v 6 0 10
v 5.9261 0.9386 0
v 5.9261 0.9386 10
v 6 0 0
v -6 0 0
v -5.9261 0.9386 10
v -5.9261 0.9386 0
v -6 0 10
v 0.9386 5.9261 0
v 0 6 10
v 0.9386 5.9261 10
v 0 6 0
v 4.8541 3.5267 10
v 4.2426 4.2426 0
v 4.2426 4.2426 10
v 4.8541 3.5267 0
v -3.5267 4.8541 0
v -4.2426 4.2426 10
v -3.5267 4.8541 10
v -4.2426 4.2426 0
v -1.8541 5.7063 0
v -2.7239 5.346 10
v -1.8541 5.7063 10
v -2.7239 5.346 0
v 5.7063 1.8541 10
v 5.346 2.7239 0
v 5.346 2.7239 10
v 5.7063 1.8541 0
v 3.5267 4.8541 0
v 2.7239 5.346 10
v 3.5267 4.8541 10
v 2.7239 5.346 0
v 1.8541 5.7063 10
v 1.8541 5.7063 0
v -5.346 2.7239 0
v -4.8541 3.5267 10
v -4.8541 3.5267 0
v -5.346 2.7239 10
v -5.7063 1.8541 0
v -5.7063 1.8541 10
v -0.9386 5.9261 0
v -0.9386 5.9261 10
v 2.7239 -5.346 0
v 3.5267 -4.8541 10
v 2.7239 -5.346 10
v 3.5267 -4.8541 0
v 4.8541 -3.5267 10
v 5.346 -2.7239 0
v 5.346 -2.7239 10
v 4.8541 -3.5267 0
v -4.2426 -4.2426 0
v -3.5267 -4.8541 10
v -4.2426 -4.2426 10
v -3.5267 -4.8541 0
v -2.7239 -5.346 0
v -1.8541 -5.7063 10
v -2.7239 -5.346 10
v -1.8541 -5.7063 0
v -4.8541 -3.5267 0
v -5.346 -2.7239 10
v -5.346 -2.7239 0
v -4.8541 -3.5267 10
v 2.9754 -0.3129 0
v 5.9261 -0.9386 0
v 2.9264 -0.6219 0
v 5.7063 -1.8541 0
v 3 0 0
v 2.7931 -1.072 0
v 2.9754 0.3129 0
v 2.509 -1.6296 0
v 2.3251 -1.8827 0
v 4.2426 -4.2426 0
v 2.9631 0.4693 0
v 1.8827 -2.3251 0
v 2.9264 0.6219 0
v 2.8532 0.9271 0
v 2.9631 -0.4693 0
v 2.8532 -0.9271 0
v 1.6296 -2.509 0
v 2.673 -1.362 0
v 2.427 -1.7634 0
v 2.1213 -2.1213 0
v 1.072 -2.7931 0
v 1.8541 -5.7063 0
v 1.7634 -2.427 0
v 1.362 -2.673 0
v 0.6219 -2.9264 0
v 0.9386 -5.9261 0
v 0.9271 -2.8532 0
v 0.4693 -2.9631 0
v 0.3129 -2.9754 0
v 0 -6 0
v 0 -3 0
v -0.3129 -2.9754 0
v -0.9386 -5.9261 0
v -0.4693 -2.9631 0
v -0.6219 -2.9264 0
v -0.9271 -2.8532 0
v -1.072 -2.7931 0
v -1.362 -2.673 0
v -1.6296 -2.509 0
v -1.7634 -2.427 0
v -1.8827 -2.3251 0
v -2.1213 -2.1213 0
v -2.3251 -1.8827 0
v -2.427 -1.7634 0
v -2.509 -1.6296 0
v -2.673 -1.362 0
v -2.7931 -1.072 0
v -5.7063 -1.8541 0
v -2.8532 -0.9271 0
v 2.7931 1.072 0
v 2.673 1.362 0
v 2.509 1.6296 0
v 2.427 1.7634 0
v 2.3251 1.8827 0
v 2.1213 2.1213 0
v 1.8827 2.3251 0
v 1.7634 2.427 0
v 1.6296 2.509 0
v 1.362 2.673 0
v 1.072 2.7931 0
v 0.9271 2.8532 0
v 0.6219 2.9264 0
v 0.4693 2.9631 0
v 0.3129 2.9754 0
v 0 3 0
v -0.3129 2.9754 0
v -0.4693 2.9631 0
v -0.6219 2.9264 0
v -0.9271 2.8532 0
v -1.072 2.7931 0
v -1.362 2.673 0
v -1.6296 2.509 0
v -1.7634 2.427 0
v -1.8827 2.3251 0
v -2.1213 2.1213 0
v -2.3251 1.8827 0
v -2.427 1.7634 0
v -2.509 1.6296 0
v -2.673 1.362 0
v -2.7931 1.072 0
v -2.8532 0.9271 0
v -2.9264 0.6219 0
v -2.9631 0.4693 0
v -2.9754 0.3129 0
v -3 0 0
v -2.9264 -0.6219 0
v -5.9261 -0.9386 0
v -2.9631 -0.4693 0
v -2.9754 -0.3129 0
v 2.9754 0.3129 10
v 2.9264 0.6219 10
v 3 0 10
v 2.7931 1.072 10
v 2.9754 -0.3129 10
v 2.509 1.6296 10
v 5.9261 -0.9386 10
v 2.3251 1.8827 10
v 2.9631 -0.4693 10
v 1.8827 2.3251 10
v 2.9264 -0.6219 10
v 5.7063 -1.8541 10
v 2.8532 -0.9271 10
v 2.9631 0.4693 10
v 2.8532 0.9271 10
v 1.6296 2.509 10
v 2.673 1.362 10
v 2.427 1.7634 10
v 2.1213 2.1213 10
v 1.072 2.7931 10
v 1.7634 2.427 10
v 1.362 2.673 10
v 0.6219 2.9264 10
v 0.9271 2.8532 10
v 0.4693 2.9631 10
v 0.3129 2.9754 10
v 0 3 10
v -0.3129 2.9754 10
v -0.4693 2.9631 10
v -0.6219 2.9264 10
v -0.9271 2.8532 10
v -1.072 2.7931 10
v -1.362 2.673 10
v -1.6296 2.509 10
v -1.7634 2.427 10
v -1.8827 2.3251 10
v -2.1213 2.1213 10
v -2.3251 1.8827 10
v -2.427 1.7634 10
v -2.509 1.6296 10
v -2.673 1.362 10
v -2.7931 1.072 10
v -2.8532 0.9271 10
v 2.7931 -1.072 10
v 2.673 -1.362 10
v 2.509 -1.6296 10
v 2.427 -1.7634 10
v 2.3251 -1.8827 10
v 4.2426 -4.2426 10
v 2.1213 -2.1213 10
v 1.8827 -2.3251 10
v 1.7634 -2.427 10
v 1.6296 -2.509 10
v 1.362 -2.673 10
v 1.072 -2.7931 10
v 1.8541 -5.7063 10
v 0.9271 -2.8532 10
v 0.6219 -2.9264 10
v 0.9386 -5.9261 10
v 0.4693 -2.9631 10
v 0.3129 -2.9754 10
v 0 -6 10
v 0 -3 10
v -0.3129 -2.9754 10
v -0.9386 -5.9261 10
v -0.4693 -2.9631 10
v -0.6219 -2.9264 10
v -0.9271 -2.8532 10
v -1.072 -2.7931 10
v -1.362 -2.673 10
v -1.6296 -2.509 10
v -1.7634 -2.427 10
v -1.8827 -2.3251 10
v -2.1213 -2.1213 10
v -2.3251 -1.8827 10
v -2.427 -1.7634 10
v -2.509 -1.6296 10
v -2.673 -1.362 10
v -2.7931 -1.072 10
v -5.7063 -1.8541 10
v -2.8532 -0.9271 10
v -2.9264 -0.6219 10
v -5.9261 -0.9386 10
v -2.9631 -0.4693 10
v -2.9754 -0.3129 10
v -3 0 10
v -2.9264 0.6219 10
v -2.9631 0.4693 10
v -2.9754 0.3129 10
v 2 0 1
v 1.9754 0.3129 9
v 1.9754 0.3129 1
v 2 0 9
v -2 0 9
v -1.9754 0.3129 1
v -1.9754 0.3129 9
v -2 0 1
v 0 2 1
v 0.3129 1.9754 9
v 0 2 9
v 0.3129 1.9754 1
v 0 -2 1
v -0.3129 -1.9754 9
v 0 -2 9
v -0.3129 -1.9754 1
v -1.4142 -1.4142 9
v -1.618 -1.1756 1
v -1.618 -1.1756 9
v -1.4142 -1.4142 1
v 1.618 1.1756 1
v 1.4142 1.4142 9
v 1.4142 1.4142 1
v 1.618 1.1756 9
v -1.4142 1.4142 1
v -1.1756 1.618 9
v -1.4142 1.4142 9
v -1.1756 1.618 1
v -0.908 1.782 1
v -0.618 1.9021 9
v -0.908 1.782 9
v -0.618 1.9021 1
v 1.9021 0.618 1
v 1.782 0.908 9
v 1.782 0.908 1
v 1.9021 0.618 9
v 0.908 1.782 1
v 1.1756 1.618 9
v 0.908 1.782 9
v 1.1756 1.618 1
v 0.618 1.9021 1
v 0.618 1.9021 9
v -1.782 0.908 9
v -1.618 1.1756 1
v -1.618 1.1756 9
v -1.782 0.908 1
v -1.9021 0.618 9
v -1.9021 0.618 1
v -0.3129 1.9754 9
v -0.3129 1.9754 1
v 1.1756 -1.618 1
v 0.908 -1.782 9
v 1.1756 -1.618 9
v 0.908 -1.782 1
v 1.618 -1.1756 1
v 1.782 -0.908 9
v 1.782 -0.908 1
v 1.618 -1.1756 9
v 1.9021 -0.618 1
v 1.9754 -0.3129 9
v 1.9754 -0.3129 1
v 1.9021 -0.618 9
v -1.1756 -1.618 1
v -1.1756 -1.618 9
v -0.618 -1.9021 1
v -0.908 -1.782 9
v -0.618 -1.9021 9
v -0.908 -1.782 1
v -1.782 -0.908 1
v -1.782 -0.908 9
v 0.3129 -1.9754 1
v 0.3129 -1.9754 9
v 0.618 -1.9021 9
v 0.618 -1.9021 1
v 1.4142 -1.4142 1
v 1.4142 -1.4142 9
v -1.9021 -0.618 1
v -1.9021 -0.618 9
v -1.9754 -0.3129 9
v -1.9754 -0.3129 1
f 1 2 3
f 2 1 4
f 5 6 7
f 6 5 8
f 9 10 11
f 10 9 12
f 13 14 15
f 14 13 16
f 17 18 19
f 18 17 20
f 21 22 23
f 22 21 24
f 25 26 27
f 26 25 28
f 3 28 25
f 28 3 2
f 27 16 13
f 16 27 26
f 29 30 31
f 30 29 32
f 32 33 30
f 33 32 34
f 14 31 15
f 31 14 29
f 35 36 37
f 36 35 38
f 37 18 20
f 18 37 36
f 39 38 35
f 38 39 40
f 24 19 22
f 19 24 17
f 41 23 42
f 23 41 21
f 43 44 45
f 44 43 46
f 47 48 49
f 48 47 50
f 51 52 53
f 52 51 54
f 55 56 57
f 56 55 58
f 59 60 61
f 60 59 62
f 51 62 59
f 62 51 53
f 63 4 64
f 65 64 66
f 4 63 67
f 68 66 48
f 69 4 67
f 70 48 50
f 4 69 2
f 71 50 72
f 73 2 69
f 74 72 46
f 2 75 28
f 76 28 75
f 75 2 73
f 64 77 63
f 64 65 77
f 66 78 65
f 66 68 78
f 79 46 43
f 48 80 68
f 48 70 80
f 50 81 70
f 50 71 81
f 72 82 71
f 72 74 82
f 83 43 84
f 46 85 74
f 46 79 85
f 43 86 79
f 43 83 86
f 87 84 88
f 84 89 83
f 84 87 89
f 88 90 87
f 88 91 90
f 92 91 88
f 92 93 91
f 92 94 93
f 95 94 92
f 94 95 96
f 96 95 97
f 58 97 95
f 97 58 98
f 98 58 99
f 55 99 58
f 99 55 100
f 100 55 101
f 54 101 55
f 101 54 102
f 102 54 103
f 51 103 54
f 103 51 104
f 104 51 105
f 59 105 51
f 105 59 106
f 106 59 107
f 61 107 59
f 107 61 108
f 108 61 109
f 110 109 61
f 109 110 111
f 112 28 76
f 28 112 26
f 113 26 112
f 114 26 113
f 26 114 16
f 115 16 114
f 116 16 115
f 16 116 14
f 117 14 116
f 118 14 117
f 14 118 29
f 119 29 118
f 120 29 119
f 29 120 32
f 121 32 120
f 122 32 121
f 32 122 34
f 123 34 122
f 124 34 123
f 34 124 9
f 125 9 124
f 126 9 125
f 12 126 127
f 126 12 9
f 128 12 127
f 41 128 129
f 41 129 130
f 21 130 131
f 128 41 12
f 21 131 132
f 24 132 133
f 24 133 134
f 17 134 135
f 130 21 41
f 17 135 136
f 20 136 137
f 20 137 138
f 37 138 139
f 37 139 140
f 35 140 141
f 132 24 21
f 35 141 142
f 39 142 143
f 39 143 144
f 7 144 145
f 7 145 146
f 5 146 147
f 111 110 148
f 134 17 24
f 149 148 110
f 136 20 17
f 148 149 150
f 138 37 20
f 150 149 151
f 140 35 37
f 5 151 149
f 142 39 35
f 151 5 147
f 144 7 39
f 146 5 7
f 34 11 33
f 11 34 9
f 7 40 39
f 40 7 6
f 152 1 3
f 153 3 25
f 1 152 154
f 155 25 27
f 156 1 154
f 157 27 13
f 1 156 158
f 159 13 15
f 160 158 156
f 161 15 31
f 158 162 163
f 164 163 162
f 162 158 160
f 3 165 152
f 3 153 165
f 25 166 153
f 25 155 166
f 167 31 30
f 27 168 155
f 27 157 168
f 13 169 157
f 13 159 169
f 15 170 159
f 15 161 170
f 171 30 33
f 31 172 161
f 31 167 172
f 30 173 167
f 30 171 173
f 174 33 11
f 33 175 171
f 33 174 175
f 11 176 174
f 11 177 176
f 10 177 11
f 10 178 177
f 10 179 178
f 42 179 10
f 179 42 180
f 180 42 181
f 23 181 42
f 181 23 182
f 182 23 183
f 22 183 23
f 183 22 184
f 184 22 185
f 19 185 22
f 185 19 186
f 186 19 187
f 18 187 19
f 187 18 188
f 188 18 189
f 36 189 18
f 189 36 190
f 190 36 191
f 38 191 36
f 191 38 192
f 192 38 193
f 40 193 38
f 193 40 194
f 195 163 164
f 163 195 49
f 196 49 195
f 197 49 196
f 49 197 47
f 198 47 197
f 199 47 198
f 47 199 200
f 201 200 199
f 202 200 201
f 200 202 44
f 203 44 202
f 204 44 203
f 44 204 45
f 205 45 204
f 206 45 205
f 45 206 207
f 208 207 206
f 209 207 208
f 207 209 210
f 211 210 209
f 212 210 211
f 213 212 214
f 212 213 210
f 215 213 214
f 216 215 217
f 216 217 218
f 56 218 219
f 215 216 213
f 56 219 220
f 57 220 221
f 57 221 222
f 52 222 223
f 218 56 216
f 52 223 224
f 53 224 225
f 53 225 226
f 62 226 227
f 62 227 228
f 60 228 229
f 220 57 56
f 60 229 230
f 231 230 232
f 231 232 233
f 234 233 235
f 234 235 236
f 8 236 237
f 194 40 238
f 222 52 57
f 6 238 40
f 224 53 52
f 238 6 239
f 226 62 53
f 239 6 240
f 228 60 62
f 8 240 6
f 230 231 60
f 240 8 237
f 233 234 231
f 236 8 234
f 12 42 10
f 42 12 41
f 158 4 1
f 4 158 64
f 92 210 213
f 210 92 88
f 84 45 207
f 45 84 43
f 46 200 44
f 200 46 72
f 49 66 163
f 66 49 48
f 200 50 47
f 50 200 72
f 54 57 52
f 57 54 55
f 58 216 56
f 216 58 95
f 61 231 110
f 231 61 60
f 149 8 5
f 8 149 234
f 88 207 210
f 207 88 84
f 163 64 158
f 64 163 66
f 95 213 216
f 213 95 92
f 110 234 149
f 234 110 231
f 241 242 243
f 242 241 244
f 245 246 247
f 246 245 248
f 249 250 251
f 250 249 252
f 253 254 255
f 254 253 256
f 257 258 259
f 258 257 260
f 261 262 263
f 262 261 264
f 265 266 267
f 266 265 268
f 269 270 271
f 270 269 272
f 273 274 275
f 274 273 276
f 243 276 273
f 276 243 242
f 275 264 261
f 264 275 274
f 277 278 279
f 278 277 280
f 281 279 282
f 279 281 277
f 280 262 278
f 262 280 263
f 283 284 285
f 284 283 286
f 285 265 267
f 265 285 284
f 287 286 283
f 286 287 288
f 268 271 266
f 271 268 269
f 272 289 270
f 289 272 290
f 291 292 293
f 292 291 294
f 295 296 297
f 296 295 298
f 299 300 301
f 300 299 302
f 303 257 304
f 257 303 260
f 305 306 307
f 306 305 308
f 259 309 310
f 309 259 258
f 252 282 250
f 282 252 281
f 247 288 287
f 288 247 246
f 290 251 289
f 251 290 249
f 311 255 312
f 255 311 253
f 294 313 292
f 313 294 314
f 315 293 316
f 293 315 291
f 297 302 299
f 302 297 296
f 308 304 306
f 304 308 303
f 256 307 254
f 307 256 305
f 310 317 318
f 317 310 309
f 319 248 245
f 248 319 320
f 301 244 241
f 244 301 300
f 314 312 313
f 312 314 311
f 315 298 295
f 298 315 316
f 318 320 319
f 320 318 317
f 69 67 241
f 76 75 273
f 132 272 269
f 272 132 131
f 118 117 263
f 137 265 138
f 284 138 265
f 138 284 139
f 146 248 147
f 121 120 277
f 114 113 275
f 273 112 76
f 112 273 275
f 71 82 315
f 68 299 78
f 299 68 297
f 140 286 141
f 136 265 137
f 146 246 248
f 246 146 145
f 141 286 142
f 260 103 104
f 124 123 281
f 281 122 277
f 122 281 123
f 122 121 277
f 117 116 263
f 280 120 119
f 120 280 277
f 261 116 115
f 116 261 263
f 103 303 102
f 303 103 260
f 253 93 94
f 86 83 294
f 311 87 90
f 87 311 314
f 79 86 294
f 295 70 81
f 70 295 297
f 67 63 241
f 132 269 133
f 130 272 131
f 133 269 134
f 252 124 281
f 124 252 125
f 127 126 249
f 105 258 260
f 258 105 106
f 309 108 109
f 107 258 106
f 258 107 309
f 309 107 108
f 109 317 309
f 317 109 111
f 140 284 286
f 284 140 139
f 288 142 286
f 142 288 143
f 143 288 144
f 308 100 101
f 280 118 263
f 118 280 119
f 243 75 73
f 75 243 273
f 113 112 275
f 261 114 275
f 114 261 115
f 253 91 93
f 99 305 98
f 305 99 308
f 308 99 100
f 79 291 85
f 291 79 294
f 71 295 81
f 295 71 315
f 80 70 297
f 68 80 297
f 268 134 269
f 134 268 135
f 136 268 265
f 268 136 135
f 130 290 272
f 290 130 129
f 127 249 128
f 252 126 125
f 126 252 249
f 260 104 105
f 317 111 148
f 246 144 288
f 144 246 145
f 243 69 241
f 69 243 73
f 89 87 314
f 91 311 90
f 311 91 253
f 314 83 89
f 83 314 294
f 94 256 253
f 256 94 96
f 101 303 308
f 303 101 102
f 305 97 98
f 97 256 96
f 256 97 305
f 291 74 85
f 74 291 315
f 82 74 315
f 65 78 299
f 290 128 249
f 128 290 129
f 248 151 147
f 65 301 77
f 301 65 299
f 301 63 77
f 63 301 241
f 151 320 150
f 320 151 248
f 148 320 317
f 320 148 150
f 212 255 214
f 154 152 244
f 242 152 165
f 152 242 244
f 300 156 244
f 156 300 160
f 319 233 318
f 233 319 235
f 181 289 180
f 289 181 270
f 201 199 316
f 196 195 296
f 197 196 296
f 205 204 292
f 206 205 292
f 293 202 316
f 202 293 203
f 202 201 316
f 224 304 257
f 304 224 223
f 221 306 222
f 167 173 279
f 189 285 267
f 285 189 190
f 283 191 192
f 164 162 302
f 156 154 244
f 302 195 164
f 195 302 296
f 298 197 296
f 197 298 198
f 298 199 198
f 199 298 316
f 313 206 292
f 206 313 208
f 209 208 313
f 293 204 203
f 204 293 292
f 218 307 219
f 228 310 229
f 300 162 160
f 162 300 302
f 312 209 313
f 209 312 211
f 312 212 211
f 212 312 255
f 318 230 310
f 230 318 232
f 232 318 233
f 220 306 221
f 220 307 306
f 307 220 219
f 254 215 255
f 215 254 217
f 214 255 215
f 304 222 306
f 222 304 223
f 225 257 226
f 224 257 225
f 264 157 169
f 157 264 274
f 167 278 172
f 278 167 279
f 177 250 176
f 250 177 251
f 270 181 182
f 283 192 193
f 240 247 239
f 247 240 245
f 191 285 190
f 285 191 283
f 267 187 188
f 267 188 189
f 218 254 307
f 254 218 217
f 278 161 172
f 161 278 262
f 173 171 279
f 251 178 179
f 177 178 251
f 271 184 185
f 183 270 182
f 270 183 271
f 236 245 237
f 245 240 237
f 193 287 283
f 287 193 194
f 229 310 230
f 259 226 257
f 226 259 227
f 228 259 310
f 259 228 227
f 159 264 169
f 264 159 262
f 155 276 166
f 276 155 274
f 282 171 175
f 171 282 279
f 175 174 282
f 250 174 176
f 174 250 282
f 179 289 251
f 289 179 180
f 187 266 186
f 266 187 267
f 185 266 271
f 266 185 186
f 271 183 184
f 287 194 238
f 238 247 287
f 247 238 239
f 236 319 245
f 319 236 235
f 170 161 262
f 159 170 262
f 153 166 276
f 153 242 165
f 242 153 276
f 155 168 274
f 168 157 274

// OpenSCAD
$fn=40;
difference (){
    cylinder(10,6,6);
 translate ([0,0,-1])
cylinder (12,2,2);
 translate ([0,0,-1])
cylinder (2,4,2);
 translate ([0,0,9])
cylinder (2,2,4);
    
};
